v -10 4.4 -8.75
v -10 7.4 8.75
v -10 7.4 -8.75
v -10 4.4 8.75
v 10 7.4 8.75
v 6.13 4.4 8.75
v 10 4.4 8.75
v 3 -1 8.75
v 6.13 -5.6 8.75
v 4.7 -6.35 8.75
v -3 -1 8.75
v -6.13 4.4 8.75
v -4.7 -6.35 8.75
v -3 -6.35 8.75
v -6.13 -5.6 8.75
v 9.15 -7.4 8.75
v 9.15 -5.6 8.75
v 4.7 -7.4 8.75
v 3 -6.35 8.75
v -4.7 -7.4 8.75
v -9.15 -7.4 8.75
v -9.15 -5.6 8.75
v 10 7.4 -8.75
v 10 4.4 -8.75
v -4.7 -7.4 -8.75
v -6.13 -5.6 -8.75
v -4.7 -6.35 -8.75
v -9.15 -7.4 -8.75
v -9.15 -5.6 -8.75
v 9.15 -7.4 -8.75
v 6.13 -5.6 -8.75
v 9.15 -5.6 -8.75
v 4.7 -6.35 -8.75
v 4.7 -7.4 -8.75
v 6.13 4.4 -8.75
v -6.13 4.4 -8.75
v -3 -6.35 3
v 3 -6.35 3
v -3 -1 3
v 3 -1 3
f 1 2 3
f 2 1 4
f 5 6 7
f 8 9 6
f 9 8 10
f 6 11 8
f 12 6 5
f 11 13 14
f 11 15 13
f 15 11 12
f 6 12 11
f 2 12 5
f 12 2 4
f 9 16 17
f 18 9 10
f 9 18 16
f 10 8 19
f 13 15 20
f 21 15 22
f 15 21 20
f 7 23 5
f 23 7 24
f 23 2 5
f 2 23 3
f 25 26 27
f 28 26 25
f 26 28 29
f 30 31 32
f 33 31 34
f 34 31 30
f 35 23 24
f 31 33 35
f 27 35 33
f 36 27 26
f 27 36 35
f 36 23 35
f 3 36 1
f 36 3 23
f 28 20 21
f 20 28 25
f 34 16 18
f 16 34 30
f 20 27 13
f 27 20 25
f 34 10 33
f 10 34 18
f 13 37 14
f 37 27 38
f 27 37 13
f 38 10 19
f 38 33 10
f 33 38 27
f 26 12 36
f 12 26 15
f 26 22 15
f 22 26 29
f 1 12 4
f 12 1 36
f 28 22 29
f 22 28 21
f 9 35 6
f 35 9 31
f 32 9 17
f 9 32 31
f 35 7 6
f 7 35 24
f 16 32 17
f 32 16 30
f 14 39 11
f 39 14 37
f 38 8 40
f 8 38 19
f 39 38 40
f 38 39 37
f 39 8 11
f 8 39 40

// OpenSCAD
module hot_shoe_mount() {

	difference() {

		cube([20,14.8,17.5], center=true);

		translate([0,-7.6,0]) {
			cube([9.4,2.5,17.5], center=true);
		}
	
		translate([-8.125,-0.60,0]) {
			cube([3.99,10,17.5], center=true);
		}
	
		translate([-9.65,-6.5,0]) {
			cube([1,2,17.9], center=true);
		}
	
	
		translate([8.125,-0.60,0]) {
			cube([3.99,10,17.5], center=true);
		}
	
		translate([9.65,-6.5,0]) {
			cube([1,2,17.9], center=true);
		}
		translate([0, -4, 6]) cube([6, 6, 6], center=true);
		
	}
}

hot_shoe_mount();
